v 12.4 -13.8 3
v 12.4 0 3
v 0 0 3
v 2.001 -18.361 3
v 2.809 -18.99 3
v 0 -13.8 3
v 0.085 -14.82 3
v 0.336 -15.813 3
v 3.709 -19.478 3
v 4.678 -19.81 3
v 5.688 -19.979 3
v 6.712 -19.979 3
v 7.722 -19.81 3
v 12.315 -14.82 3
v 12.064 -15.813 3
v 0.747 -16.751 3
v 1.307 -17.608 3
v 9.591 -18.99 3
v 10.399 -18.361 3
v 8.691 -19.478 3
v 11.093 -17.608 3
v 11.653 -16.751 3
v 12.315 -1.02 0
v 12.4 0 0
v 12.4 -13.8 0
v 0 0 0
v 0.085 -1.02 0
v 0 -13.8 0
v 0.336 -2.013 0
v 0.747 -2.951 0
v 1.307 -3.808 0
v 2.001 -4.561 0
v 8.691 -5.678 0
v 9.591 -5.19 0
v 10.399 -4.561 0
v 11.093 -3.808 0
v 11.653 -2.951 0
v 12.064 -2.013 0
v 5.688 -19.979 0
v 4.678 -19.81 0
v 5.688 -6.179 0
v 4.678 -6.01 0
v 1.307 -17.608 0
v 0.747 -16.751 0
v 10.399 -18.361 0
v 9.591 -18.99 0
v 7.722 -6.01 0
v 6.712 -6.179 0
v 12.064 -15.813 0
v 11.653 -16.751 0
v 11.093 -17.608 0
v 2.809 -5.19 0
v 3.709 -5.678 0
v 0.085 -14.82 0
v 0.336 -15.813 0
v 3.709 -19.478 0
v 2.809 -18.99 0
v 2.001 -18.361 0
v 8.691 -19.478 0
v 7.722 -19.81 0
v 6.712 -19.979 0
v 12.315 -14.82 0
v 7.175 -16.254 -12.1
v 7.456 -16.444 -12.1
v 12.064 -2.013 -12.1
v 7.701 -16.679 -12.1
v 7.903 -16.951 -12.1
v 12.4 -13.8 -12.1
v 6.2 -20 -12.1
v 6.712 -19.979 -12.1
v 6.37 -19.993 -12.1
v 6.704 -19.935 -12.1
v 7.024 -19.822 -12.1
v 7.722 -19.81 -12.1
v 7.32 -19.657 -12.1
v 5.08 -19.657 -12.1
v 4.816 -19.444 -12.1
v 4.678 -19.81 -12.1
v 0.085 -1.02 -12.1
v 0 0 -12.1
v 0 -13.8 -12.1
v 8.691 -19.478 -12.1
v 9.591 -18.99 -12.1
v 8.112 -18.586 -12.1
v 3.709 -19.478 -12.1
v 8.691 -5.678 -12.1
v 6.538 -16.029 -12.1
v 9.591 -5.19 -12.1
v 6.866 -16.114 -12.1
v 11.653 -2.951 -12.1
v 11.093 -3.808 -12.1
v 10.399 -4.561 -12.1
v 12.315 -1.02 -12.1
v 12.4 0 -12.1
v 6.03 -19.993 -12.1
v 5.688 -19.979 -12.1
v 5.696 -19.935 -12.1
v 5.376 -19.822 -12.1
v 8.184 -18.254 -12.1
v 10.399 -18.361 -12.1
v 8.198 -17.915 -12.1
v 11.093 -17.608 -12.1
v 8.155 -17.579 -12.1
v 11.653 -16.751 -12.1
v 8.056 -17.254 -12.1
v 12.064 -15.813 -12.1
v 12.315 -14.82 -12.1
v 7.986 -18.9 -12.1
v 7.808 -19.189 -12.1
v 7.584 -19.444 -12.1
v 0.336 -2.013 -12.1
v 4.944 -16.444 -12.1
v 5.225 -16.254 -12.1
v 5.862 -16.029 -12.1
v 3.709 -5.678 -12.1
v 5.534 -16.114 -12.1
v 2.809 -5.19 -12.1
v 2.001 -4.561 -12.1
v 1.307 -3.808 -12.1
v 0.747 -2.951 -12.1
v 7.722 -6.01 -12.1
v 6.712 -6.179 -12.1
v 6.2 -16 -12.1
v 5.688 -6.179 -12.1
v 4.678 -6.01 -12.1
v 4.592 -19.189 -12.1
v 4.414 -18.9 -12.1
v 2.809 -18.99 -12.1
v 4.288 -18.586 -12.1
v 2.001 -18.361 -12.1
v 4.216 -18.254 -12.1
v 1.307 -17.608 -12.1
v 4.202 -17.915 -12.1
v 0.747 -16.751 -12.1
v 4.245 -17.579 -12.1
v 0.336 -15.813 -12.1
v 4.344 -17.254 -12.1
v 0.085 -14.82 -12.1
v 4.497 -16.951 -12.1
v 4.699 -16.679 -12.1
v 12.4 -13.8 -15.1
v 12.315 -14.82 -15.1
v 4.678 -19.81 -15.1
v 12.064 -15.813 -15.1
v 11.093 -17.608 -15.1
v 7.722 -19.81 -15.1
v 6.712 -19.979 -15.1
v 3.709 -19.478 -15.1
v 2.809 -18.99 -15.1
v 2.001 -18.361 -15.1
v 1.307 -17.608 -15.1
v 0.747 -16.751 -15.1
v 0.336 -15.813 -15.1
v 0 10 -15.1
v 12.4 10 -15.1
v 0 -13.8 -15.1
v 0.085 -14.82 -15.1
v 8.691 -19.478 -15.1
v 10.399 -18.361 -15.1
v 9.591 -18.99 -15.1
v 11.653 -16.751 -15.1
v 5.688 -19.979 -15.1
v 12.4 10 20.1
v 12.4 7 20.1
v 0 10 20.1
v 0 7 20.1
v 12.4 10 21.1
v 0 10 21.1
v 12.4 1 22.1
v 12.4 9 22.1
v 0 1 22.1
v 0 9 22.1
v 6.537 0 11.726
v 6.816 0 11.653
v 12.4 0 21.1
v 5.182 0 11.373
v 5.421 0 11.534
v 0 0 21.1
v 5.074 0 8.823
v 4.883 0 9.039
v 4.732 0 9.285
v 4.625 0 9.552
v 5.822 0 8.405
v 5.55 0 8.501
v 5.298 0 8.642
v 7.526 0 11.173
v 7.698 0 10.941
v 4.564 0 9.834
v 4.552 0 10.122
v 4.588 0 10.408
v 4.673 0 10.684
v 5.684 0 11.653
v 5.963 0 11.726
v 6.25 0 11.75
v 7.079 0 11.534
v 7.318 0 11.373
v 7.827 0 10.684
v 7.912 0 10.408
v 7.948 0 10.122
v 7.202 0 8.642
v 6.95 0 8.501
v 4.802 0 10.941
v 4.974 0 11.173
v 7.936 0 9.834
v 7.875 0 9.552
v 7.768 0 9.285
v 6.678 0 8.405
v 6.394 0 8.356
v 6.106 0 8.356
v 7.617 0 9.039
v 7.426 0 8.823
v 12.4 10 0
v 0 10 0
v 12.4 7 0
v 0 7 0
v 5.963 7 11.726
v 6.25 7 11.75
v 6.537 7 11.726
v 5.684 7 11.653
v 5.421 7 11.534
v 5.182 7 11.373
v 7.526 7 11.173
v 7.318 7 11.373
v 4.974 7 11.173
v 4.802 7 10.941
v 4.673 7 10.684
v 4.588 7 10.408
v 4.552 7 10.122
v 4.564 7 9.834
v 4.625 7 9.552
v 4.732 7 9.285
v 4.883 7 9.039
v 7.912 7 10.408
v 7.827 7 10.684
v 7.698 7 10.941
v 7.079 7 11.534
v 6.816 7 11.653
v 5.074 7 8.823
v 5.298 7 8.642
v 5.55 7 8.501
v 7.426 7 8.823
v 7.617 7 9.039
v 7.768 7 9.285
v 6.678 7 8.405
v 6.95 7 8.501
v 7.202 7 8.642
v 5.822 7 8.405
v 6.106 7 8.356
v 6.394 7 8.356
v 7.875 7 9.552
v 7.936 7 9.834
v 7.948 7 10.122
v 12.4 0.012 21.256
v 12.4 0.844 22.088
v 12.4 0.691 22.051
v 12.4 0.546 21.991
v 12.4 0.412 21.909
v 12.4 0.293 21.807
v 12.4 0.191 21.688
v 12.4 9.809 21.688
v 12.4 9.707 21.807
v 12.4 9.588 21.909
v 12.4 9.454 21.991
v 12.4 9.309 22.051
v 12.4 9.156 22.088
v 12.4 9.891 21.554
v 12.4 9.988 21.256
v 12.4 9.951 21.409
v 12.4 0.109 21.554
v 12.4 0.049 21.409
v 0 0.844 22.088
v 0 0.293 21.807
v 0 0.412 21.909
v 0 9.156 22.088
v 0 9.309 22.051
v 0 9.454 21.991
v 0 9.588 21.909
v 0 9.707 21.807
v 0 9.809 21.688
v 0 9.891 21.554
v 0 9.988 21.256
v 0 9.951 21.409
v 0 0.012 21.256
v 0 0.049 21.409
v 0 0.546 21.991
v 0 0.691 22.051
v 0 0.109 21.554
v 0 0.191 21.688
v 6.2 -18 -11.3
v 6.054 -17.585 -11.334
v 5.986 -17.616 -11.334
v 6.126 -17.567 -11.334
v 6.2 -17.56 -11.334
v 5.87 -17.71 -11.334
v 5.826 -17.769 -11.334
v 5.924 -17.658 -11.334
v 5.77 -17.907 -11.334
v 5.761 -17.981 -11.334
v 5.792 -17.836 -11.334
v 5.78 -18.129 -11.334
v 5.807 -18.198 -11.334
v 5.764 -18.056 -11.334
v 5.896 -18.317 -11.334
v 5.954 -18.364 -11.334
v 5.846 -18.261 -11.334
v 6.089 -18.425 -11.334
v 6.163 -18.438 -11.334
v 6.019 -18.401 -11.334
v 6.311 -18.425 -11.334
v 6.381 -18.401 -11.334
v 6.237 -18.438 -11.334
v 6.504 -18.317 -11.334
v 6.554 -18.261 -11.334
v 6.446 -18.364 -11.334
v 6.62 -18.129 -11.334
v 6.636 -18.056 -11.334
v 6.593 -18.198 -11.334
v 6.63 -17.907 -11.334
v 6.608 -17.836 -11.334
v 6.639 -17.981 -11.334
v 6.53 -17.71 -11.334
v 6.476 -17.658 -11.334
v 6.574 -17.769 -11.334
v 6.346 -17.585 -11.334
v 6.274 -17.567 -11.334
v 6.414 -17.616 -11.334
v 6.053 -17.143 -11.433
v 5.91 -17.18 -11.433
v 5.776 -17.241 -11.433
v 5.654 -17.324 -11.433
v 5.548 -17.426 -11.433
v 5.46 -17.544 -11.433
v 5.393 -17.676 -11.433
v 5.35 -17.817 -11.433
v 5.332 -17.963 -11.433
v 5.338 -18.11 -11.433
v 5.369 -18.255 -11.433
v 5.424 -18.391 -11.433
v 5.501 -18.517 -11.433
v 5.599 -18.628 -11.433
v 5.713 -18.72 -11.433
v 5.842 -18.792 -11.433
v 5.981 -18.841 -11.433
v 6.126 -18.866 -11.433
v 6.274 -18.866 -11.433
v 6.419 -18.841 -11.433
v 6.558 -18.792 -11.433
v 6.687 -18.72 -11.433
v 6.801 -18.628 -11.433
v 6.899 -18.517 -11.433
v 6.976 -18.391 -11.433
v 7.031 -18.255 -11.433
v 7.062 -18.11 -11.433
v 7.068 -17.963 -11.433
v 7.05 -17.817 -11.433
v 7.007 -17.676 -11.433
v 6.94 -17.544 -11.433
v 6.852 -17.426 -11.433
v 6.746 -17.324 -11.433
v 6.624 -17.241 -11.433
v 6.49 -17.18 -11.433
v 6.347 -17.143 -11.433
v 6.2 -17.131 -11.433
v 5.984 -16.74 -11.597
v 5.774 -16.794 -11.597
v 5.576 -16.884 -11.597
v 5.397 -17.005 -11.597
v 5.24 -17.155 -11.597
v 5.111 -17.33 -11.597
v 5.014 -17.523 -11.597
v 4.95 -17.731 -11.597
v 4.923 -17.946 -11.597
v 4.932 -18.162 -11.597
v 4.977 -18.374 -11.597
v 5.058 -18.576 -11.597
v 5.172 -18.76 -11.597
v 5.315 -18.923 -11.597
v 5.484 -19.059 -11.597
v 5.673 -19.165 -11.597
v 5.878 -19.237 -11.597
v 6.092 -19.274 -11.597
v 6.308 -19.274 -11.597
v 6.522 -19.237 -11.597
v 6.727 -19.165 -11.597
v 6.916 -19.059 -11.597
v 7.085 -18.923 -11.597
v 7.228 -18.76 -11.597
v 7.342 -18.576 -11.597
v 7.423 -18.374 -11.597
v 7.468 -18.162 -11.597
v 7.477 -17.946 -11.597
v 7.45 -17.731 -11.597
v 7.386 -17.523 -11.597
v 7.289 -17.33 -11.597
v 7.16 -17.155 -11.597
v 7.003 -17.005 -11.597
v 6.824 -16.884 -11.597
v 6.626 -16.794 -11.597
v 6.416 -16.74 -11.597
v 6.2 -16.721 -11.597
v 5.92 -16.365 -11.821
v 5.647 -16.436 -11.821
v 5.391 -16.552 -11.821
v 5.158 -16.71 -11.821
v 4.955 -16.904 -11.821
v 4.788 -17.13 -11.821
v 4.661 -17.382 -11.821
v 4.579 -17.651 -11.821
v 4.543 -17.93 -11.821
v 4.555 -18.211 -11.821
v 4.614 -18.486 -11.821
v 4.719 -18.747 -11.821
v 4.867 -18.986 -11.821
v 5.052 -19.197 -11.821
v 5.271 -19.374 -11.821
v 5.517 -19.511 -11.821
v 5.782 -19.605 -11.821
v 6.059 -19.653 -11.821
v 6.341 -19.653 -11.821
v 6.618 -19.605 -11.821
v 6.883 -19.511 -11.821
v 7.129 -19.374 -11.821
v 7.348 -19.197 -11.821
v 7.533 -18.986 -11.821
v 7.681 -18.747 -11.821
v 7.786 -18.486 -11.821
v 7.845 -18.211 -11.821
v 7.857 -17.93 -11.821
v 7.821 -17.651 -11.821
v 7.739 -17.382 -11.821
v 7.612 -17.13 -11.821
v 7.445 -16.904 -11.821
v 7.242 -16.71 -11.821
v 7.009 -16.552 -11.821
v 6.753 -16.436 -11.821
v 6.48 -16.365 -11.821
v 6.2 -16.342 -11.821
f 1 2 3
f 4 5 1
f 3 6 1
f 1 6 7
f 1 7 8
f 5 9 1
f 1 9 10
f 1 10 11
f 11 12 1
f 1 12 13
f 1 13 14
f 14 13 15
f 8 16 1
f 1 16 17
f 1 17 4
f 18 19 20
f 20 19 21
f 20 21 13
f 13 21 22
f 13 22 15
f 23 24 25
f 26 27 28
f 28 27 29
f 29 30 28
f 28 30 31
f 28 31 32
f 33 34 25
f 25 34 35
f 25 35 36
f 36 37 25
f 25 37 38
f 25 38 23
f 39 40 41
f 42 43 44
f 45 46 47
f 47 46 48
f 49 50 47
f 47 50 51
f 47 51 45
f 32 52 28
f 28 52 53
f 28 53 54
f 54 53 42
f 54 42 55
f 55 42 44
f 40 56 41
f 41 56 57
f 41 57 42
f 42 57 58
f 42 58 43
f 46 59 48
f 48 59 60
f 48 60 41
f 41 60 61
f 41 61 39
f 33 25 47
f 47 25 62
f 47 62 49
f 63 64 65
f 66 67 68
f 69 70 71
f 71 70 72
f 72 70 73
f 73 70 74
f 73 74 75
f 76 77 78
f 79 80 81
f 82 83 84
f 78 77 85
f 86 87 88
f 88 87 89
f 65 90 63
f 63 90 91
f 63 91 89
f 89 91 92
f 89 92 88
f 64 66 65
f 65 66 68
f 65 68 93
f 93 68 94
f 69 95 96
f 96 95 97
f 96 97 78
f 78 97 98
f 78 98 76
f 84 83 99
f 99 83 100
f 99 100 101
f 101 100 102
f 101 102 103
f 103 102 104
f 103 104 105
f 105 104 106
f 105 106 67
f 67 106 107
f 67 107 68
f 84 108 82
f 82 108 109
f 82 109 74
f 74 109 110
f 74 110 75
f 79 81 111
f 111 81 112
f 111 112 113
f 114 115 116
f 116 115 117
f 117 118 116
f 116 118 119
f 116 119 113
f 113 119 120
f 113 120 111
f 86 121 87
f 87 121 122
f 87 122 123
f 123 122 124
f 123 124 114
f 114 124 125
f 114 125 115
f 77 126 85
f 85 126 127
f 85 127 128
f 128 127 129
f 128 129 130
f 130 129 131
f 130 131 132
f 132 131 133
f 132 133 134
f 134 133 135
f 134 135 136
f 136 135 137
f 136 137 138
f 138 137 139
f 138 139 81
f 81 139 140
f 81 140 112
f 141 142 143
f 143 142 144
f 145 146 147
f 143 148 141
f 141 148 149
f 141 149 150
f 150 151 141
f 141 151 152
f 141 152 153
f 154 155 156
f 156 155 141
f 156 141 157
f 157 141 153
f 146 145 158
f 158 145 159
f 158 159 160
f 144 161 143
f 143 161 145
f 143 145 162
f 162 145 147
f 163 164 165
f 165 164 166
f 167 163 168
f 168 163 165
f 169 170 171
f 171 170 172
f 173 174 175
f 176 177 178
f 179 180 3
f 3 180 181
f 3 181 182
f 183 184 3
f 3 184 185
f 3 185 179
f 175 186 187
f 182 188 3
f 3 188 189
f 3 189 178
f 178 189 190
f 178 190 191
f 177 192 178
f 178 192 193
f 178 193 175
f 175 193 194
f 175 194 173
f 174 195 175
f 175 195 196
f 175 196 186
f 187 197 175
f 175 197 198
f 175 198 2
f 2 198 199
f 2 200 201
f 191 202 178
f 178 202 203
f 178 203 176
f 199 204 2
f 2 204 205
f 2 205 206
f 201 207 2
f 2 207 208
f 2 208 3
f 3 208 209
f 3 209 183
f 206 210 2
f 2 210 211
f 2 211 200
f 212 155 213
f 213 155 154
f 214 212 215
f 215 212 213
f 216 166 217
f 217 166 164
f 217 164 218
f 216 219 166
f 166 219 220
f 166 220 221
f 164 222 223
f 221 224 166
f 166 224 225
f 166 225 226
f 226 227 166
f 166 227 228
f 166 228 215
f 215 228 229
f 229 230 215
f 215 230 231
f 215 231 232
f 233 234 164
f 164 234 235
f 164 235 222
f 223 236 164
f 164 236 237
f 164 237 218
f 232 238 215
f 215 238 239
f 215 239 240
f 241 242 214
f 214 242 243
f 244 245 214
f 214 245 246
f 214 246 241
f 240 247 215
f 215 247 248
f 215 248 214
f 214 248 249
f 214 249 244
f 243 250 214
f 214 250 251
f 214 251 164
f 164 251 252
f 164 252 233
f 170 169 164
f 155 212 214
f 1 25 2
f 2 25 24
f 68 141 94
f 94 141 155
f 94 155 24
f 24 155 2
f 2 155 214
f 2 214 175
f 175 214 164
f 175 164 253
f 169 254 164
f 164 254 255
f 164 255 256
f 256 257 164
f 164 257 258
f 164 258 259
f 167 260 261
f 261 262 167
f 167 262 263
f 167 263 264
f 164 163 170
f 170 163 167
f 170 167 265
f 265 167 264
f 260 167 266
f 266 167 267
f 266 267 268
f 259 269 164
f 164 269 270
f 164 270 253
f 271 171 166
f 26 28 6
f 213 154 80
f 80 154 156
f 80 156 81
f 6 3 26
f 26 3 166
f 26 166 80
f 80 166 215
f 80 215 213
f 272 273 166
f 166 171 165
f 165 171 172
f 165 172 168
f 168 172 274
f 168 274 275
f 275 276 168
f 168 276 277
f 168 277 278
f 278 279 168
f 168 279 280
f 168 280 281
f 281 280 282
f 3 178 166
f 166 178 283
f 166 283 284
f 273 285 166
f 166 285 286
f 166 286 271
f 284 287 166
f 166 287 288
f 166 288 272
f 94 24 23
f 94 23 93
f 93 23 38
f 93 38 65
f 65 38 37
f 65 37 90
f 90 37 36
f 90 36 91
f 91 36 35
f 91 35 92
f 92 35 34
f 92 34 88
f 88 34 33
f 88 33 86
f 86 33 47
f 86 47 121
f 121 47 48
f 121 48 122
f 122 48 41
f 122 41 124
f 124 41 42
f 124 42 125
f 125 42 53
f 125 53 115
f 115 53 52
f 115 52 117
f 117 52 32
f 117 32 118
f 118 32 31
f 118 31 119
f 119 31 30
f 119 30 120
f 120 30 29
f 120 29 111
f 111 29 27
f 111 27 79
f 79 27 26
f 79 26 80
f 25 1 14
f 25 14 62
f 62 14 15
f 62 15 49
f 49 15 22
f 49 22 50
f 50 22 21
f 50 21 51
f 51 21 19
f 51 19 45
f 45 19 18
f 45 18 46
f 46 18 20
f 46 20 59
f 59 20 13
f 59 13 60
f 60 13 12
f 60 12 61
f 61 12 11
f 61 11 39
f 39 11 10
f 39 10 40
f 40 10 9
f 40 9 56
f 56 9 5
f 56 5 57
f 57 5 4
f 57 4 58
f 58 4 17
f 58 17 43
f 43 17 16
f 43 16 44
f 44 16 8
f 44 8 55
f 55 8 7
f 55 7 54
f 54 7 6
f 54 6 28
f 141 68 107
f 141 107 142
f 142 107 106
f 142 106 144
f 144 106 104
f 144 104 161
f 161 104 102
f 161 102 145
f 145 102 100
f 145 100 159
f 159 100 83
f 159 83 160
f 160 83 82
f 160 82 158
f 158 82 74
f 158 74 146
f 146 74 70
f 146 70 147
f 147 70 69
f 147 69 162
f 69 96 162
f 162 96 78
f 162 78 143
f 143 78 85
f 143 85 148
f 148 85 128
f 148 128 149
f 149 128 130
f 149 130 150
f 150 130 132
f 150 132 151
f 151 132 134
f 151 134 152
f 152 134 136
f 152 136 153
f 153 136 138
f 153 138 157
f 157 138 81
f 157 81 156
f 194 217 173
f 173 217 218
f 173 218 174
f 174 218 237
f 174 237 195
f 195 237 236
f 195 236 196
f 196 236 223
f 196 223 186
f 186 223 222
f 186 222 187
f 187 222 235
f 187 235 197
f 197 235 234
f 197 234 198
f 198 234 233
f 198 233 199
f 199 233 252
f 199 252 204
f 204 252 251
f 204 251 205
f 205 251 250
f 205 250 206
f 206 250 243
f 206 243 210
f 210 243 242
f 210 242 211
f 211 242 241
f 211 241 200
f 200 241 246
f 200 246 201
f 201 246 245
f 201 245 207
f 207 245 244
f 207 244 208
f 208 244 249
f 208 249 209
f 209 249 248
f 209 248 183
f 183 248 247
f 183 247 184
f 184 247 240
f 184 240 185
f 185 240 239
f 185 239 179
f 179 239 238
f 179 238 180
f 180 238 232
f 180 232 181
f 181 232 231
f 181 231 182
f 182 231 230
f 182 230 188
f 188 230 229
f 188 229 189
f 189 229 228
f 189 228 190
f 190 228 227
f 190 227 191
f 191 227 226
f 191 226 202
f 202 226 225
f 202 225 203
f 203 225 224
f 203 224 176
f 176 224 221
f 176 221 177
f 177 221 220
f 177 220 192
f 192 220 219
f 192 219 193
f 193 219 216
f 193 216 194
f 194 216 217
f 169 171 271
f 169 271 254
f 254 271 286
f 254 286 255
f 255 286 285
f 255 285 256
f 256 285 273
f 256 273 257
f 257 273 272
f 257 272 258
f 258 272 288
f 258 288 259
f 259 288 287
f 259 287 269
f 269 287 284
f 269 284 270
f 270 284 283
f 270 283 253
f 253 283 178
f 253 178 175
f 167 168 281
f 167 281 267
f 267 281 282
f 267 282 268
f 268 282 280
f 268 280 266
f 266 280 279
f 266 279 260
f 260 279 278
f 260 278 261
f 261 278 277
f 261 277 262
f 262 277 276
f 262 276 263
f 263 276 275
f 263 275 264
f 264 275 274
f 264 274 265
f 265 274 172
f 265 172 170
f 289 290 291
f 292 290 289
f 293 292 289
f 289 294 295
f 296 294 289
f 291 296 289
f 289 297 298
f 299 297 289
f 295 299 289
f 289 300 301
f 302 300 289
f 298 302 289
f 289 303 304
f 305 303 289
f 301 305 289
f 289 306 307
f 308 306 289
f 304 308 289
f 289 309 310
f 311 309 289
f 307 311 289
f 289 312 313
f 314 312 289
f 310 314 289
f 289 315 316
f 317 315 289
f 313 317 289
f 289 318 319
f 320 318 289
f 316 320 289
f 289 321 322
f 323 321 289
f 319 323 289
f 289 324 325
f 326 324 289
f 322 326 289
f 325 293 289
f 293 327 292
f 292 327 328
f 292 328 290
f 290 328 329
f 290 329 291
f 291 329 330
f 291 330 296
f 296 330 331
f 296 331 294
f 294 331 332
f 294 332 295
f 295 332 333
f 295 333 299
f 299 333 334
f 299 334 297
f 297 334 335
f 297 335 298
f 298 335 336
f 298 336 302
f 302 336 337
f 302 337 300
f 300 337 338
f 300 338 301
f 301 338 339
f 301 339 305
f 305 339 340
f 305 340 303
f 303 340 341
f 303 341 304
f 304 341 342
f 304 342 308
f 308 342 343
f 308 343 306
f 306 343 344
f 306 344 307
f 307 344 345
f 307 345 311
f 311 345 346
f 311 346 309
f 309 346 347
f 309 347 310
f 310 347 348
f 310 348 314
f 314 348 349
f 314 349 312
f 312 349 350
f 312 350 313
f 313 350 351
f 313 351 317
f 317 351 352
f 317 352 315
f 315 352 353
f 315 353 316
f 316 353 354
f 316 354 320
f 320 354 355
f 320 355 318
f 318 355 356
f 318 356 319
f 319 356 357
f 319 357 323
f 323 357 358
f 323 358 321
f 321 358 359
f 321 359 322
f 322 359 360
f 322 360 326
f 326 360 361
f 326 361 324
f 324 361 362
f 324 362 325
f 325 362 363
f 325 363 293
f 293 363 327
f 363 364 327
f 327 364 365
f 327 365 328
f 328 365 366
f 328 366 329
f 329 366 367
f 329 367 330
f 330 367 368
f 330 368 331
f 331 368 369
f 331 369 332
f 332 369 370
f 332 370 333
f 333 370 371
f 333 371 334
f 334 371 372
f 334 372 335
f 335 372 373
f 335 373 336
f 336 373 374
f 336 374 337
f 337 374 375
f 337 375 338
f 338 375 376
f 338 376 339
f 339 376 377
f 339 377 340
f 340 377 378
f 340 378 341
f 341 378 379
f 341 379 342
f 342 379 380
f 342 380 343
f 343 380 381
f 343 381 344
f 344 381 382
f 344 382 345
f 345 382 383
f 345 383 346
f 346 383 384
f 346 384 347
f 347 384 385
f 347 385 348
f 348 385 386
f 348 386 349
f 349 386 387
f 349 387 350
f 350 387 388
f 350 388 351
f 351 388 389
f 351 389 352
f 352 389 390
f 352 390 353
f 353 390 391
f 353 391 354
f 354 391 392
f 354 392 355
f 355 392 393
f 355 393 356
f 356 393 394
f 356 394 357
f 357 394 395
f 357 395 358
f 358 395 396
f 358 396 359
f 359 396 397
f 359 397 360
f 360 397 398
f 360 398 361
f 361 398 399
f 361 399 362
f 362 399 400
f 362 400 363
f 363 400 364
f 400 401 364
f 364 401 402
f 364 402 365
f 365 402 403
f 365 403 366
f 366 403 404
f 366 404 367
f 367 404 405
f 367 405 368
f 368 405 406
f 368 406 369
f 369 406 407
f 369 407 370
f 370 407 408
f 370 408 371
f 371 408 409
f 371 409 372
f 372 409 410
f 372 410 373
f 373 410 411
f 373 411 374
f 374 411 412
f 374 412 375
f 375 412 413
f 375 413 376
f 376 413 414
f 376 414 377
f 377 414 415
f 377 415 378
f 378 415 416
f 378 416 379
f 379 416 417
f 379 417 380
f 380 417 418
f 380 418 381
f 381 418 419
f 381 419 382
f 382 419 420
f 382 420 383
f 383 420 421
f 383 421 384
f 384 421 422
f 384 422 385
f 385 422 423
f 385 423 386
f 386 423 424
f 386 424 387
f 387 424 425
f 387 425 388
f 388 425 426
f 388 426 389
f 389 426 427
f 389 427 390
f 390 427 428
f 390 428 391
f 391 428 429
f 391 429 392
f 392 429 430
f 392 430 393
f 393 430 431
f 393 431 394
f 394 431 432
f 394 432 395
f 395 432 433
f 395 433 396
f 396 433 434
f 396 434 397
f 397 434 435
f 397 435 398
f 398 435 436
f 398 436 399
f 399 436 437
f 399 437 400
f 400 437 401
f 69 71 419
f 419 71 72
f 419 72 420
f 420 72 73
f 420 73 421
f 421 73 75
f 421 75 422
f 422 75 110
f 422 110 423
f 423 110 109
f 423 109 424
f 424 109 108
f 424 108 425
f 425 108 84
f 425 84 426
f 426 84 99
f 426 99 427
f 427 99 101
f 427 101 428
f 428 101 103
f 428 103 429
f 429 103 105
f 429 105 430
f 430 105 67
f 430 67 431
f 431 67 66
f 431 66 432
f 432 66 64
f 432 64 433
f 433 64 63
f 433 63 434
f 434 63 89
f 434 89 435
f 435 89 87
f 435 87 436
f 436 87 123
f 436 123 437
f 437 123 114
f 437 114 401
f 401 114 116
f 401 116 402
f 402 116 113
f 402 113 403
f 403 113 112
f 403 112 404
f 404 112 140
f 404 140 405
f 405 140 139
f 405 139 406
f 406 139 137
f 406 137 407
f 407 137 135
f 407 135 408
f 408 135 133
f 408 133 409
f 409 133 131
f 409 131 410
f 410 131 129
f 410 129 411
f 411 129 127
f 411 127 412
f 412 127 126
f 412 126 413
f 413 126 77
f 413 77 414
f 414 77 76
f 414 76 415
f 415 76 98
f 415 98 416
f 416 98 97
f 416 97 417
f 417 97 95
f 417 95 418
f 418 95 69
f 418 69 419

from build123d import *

# Parameters (mm, degrees)
SKETCH_2_W               = 12.1
SKETCH_2_H               = 8
EXTRUDE_1_DEPTH          = 12.4
CUT_EXTRUDE_1_DEPTH      = 12.1
CUT_EXTRUDE_2_DEPTH      = 23.1
CUT_EXTRUDE_2_DEPTH_BACK = 16.1
HOLE_WIZARD_M31_D        = 3.4
HOLE_WIZARD_M31_DEPTH    = 10
HOLE_WIZARD_M31_TIP      = 1.021463052
FILLET_1_R               = 1


with BuildPart() as part:
    # Эскиз2 → Бобышка-Вытянуть1 (new body)
    with BuildSketch(Plane(origin=(0, 0, 0), x_dir=(0, 0, -1), z_dir=(1, 0, 0))):
        Polygon((-20.1, 10), (-20.1, 7), (0, 7), (0, 10), (15.1, 10), (15.1, -20), (12.1, -20), (12.1, 0), (0, 0), (0, -20), (-3, -20), (-3, 0), (-22.1, 0), (-22.1, 10), align=None)
        with Locations((6.05, -4)):
            Rectangle(SKETCH_2_W, SKETCH_2_H)
    extrude(amount=EXTRUDE_1_DEPTH)

    # Эскиз3 → Вырез-Вытянуть1 (cut)
    with BuildSketch(Plane.XY):
        with BuildLine():
            Line((0, 0), (-4.310236897, 0))
            Line((-4.310236897, 0), (-4.310236897, -10.158248203))
            Line((-4.310236897, -10.158248203), (16.784307367, -10.158248203))
            Line((16.784307367, -10.158248203), (16.784307367, 0))
            Line((16.784307367, 0), (12.4, 0))
            ThreePointArc((12.4, 0), (6.2, -6.2), (0, 0))
        make_face()
    extrude(amount=-CUT_EXTRUDE_1_DEPTH, mode=Mode.SUBTRACT)

    # Эскиз4 → Вырез-Вытянуть2 (cut, two sides)
    with BuildSketch(Plane.XY) as cut_extrude_2_sk:
        with BuildLine():
            Line((0, -13.8), (-4.529189241, -13.8))
            Line((-4.529189241, -13.8), (-4.529189241, -23.032738442))
            Line((-4.529189241, -23.032738442), (17.457291493, -23.032738442))
            Line((17.457291493, -23.032738442), (17.457291493, -13.8))
            Line((17.457291493, -13.8), (12.4, -13.8))
            ThreePointArc((12.4, -13.8), (6.2, -20), (0, -13.8))
        make_face()
    extrude(amount=CUT_EXTRUDE_2_DEPTH, mode=Mode.SUBTRACT)
    extrude(cut_extrude_2_sk.sketch, amount=-CUT_EXTRUDE_2_DEPTH_BACK, mode=Mode.SUBTRACT)

    # Отверстие с зазором M31
    with Locations(Plane(origin=(0, 7, 0), x_dir=(1, 0, 0), z_dir=(0, 1, 0))):
        with Locations((6.25, -10.05)):
            Hole(HOLE_WIZARD_M31_D / 2, depth=HOLE_WIZARD_M31_DEPTH)
            with Locations((0, 0, -(HOLE_WIZARD_M31_DEPTH + HOLE_WIZARD_M31_TIP / 2))):  # 118° drill point
                Cone(0, HOLE_WIZARD_M31_D / 2, HOLE_WIZARD_M31_TIP, mode=Mode.SUBTRACT)

    # Скругление1
    fillet_1_edges = [part.edges().sort_by_distance(p)[0] for p in [
        (6.2, 0, 22.1),
        (6.2, 10, 22.1),
    ]]
    fillet(fillet_1_edges, radius=FILLET_1_R)

    # Эскиз9 → Повернуть1 (revolve)
    with BuildSketch(Plane(origin=(6.2, 0, 0), x_dir=(0, 0, -1), z_dir=(1, 0, 0))):
        with BuildLine():
            Line((12.1, -20), (12.1, -18))
            Line((12.1, -18), (11.3, -18))
            ThreePointArc((11.3, -18), (11.507417596, -19.077032961), (12.1, -20))
        make_face()
    revolve(axis=Axis((6.2, -18, -11.3), (0, 0, -1)))


solid = part.part
